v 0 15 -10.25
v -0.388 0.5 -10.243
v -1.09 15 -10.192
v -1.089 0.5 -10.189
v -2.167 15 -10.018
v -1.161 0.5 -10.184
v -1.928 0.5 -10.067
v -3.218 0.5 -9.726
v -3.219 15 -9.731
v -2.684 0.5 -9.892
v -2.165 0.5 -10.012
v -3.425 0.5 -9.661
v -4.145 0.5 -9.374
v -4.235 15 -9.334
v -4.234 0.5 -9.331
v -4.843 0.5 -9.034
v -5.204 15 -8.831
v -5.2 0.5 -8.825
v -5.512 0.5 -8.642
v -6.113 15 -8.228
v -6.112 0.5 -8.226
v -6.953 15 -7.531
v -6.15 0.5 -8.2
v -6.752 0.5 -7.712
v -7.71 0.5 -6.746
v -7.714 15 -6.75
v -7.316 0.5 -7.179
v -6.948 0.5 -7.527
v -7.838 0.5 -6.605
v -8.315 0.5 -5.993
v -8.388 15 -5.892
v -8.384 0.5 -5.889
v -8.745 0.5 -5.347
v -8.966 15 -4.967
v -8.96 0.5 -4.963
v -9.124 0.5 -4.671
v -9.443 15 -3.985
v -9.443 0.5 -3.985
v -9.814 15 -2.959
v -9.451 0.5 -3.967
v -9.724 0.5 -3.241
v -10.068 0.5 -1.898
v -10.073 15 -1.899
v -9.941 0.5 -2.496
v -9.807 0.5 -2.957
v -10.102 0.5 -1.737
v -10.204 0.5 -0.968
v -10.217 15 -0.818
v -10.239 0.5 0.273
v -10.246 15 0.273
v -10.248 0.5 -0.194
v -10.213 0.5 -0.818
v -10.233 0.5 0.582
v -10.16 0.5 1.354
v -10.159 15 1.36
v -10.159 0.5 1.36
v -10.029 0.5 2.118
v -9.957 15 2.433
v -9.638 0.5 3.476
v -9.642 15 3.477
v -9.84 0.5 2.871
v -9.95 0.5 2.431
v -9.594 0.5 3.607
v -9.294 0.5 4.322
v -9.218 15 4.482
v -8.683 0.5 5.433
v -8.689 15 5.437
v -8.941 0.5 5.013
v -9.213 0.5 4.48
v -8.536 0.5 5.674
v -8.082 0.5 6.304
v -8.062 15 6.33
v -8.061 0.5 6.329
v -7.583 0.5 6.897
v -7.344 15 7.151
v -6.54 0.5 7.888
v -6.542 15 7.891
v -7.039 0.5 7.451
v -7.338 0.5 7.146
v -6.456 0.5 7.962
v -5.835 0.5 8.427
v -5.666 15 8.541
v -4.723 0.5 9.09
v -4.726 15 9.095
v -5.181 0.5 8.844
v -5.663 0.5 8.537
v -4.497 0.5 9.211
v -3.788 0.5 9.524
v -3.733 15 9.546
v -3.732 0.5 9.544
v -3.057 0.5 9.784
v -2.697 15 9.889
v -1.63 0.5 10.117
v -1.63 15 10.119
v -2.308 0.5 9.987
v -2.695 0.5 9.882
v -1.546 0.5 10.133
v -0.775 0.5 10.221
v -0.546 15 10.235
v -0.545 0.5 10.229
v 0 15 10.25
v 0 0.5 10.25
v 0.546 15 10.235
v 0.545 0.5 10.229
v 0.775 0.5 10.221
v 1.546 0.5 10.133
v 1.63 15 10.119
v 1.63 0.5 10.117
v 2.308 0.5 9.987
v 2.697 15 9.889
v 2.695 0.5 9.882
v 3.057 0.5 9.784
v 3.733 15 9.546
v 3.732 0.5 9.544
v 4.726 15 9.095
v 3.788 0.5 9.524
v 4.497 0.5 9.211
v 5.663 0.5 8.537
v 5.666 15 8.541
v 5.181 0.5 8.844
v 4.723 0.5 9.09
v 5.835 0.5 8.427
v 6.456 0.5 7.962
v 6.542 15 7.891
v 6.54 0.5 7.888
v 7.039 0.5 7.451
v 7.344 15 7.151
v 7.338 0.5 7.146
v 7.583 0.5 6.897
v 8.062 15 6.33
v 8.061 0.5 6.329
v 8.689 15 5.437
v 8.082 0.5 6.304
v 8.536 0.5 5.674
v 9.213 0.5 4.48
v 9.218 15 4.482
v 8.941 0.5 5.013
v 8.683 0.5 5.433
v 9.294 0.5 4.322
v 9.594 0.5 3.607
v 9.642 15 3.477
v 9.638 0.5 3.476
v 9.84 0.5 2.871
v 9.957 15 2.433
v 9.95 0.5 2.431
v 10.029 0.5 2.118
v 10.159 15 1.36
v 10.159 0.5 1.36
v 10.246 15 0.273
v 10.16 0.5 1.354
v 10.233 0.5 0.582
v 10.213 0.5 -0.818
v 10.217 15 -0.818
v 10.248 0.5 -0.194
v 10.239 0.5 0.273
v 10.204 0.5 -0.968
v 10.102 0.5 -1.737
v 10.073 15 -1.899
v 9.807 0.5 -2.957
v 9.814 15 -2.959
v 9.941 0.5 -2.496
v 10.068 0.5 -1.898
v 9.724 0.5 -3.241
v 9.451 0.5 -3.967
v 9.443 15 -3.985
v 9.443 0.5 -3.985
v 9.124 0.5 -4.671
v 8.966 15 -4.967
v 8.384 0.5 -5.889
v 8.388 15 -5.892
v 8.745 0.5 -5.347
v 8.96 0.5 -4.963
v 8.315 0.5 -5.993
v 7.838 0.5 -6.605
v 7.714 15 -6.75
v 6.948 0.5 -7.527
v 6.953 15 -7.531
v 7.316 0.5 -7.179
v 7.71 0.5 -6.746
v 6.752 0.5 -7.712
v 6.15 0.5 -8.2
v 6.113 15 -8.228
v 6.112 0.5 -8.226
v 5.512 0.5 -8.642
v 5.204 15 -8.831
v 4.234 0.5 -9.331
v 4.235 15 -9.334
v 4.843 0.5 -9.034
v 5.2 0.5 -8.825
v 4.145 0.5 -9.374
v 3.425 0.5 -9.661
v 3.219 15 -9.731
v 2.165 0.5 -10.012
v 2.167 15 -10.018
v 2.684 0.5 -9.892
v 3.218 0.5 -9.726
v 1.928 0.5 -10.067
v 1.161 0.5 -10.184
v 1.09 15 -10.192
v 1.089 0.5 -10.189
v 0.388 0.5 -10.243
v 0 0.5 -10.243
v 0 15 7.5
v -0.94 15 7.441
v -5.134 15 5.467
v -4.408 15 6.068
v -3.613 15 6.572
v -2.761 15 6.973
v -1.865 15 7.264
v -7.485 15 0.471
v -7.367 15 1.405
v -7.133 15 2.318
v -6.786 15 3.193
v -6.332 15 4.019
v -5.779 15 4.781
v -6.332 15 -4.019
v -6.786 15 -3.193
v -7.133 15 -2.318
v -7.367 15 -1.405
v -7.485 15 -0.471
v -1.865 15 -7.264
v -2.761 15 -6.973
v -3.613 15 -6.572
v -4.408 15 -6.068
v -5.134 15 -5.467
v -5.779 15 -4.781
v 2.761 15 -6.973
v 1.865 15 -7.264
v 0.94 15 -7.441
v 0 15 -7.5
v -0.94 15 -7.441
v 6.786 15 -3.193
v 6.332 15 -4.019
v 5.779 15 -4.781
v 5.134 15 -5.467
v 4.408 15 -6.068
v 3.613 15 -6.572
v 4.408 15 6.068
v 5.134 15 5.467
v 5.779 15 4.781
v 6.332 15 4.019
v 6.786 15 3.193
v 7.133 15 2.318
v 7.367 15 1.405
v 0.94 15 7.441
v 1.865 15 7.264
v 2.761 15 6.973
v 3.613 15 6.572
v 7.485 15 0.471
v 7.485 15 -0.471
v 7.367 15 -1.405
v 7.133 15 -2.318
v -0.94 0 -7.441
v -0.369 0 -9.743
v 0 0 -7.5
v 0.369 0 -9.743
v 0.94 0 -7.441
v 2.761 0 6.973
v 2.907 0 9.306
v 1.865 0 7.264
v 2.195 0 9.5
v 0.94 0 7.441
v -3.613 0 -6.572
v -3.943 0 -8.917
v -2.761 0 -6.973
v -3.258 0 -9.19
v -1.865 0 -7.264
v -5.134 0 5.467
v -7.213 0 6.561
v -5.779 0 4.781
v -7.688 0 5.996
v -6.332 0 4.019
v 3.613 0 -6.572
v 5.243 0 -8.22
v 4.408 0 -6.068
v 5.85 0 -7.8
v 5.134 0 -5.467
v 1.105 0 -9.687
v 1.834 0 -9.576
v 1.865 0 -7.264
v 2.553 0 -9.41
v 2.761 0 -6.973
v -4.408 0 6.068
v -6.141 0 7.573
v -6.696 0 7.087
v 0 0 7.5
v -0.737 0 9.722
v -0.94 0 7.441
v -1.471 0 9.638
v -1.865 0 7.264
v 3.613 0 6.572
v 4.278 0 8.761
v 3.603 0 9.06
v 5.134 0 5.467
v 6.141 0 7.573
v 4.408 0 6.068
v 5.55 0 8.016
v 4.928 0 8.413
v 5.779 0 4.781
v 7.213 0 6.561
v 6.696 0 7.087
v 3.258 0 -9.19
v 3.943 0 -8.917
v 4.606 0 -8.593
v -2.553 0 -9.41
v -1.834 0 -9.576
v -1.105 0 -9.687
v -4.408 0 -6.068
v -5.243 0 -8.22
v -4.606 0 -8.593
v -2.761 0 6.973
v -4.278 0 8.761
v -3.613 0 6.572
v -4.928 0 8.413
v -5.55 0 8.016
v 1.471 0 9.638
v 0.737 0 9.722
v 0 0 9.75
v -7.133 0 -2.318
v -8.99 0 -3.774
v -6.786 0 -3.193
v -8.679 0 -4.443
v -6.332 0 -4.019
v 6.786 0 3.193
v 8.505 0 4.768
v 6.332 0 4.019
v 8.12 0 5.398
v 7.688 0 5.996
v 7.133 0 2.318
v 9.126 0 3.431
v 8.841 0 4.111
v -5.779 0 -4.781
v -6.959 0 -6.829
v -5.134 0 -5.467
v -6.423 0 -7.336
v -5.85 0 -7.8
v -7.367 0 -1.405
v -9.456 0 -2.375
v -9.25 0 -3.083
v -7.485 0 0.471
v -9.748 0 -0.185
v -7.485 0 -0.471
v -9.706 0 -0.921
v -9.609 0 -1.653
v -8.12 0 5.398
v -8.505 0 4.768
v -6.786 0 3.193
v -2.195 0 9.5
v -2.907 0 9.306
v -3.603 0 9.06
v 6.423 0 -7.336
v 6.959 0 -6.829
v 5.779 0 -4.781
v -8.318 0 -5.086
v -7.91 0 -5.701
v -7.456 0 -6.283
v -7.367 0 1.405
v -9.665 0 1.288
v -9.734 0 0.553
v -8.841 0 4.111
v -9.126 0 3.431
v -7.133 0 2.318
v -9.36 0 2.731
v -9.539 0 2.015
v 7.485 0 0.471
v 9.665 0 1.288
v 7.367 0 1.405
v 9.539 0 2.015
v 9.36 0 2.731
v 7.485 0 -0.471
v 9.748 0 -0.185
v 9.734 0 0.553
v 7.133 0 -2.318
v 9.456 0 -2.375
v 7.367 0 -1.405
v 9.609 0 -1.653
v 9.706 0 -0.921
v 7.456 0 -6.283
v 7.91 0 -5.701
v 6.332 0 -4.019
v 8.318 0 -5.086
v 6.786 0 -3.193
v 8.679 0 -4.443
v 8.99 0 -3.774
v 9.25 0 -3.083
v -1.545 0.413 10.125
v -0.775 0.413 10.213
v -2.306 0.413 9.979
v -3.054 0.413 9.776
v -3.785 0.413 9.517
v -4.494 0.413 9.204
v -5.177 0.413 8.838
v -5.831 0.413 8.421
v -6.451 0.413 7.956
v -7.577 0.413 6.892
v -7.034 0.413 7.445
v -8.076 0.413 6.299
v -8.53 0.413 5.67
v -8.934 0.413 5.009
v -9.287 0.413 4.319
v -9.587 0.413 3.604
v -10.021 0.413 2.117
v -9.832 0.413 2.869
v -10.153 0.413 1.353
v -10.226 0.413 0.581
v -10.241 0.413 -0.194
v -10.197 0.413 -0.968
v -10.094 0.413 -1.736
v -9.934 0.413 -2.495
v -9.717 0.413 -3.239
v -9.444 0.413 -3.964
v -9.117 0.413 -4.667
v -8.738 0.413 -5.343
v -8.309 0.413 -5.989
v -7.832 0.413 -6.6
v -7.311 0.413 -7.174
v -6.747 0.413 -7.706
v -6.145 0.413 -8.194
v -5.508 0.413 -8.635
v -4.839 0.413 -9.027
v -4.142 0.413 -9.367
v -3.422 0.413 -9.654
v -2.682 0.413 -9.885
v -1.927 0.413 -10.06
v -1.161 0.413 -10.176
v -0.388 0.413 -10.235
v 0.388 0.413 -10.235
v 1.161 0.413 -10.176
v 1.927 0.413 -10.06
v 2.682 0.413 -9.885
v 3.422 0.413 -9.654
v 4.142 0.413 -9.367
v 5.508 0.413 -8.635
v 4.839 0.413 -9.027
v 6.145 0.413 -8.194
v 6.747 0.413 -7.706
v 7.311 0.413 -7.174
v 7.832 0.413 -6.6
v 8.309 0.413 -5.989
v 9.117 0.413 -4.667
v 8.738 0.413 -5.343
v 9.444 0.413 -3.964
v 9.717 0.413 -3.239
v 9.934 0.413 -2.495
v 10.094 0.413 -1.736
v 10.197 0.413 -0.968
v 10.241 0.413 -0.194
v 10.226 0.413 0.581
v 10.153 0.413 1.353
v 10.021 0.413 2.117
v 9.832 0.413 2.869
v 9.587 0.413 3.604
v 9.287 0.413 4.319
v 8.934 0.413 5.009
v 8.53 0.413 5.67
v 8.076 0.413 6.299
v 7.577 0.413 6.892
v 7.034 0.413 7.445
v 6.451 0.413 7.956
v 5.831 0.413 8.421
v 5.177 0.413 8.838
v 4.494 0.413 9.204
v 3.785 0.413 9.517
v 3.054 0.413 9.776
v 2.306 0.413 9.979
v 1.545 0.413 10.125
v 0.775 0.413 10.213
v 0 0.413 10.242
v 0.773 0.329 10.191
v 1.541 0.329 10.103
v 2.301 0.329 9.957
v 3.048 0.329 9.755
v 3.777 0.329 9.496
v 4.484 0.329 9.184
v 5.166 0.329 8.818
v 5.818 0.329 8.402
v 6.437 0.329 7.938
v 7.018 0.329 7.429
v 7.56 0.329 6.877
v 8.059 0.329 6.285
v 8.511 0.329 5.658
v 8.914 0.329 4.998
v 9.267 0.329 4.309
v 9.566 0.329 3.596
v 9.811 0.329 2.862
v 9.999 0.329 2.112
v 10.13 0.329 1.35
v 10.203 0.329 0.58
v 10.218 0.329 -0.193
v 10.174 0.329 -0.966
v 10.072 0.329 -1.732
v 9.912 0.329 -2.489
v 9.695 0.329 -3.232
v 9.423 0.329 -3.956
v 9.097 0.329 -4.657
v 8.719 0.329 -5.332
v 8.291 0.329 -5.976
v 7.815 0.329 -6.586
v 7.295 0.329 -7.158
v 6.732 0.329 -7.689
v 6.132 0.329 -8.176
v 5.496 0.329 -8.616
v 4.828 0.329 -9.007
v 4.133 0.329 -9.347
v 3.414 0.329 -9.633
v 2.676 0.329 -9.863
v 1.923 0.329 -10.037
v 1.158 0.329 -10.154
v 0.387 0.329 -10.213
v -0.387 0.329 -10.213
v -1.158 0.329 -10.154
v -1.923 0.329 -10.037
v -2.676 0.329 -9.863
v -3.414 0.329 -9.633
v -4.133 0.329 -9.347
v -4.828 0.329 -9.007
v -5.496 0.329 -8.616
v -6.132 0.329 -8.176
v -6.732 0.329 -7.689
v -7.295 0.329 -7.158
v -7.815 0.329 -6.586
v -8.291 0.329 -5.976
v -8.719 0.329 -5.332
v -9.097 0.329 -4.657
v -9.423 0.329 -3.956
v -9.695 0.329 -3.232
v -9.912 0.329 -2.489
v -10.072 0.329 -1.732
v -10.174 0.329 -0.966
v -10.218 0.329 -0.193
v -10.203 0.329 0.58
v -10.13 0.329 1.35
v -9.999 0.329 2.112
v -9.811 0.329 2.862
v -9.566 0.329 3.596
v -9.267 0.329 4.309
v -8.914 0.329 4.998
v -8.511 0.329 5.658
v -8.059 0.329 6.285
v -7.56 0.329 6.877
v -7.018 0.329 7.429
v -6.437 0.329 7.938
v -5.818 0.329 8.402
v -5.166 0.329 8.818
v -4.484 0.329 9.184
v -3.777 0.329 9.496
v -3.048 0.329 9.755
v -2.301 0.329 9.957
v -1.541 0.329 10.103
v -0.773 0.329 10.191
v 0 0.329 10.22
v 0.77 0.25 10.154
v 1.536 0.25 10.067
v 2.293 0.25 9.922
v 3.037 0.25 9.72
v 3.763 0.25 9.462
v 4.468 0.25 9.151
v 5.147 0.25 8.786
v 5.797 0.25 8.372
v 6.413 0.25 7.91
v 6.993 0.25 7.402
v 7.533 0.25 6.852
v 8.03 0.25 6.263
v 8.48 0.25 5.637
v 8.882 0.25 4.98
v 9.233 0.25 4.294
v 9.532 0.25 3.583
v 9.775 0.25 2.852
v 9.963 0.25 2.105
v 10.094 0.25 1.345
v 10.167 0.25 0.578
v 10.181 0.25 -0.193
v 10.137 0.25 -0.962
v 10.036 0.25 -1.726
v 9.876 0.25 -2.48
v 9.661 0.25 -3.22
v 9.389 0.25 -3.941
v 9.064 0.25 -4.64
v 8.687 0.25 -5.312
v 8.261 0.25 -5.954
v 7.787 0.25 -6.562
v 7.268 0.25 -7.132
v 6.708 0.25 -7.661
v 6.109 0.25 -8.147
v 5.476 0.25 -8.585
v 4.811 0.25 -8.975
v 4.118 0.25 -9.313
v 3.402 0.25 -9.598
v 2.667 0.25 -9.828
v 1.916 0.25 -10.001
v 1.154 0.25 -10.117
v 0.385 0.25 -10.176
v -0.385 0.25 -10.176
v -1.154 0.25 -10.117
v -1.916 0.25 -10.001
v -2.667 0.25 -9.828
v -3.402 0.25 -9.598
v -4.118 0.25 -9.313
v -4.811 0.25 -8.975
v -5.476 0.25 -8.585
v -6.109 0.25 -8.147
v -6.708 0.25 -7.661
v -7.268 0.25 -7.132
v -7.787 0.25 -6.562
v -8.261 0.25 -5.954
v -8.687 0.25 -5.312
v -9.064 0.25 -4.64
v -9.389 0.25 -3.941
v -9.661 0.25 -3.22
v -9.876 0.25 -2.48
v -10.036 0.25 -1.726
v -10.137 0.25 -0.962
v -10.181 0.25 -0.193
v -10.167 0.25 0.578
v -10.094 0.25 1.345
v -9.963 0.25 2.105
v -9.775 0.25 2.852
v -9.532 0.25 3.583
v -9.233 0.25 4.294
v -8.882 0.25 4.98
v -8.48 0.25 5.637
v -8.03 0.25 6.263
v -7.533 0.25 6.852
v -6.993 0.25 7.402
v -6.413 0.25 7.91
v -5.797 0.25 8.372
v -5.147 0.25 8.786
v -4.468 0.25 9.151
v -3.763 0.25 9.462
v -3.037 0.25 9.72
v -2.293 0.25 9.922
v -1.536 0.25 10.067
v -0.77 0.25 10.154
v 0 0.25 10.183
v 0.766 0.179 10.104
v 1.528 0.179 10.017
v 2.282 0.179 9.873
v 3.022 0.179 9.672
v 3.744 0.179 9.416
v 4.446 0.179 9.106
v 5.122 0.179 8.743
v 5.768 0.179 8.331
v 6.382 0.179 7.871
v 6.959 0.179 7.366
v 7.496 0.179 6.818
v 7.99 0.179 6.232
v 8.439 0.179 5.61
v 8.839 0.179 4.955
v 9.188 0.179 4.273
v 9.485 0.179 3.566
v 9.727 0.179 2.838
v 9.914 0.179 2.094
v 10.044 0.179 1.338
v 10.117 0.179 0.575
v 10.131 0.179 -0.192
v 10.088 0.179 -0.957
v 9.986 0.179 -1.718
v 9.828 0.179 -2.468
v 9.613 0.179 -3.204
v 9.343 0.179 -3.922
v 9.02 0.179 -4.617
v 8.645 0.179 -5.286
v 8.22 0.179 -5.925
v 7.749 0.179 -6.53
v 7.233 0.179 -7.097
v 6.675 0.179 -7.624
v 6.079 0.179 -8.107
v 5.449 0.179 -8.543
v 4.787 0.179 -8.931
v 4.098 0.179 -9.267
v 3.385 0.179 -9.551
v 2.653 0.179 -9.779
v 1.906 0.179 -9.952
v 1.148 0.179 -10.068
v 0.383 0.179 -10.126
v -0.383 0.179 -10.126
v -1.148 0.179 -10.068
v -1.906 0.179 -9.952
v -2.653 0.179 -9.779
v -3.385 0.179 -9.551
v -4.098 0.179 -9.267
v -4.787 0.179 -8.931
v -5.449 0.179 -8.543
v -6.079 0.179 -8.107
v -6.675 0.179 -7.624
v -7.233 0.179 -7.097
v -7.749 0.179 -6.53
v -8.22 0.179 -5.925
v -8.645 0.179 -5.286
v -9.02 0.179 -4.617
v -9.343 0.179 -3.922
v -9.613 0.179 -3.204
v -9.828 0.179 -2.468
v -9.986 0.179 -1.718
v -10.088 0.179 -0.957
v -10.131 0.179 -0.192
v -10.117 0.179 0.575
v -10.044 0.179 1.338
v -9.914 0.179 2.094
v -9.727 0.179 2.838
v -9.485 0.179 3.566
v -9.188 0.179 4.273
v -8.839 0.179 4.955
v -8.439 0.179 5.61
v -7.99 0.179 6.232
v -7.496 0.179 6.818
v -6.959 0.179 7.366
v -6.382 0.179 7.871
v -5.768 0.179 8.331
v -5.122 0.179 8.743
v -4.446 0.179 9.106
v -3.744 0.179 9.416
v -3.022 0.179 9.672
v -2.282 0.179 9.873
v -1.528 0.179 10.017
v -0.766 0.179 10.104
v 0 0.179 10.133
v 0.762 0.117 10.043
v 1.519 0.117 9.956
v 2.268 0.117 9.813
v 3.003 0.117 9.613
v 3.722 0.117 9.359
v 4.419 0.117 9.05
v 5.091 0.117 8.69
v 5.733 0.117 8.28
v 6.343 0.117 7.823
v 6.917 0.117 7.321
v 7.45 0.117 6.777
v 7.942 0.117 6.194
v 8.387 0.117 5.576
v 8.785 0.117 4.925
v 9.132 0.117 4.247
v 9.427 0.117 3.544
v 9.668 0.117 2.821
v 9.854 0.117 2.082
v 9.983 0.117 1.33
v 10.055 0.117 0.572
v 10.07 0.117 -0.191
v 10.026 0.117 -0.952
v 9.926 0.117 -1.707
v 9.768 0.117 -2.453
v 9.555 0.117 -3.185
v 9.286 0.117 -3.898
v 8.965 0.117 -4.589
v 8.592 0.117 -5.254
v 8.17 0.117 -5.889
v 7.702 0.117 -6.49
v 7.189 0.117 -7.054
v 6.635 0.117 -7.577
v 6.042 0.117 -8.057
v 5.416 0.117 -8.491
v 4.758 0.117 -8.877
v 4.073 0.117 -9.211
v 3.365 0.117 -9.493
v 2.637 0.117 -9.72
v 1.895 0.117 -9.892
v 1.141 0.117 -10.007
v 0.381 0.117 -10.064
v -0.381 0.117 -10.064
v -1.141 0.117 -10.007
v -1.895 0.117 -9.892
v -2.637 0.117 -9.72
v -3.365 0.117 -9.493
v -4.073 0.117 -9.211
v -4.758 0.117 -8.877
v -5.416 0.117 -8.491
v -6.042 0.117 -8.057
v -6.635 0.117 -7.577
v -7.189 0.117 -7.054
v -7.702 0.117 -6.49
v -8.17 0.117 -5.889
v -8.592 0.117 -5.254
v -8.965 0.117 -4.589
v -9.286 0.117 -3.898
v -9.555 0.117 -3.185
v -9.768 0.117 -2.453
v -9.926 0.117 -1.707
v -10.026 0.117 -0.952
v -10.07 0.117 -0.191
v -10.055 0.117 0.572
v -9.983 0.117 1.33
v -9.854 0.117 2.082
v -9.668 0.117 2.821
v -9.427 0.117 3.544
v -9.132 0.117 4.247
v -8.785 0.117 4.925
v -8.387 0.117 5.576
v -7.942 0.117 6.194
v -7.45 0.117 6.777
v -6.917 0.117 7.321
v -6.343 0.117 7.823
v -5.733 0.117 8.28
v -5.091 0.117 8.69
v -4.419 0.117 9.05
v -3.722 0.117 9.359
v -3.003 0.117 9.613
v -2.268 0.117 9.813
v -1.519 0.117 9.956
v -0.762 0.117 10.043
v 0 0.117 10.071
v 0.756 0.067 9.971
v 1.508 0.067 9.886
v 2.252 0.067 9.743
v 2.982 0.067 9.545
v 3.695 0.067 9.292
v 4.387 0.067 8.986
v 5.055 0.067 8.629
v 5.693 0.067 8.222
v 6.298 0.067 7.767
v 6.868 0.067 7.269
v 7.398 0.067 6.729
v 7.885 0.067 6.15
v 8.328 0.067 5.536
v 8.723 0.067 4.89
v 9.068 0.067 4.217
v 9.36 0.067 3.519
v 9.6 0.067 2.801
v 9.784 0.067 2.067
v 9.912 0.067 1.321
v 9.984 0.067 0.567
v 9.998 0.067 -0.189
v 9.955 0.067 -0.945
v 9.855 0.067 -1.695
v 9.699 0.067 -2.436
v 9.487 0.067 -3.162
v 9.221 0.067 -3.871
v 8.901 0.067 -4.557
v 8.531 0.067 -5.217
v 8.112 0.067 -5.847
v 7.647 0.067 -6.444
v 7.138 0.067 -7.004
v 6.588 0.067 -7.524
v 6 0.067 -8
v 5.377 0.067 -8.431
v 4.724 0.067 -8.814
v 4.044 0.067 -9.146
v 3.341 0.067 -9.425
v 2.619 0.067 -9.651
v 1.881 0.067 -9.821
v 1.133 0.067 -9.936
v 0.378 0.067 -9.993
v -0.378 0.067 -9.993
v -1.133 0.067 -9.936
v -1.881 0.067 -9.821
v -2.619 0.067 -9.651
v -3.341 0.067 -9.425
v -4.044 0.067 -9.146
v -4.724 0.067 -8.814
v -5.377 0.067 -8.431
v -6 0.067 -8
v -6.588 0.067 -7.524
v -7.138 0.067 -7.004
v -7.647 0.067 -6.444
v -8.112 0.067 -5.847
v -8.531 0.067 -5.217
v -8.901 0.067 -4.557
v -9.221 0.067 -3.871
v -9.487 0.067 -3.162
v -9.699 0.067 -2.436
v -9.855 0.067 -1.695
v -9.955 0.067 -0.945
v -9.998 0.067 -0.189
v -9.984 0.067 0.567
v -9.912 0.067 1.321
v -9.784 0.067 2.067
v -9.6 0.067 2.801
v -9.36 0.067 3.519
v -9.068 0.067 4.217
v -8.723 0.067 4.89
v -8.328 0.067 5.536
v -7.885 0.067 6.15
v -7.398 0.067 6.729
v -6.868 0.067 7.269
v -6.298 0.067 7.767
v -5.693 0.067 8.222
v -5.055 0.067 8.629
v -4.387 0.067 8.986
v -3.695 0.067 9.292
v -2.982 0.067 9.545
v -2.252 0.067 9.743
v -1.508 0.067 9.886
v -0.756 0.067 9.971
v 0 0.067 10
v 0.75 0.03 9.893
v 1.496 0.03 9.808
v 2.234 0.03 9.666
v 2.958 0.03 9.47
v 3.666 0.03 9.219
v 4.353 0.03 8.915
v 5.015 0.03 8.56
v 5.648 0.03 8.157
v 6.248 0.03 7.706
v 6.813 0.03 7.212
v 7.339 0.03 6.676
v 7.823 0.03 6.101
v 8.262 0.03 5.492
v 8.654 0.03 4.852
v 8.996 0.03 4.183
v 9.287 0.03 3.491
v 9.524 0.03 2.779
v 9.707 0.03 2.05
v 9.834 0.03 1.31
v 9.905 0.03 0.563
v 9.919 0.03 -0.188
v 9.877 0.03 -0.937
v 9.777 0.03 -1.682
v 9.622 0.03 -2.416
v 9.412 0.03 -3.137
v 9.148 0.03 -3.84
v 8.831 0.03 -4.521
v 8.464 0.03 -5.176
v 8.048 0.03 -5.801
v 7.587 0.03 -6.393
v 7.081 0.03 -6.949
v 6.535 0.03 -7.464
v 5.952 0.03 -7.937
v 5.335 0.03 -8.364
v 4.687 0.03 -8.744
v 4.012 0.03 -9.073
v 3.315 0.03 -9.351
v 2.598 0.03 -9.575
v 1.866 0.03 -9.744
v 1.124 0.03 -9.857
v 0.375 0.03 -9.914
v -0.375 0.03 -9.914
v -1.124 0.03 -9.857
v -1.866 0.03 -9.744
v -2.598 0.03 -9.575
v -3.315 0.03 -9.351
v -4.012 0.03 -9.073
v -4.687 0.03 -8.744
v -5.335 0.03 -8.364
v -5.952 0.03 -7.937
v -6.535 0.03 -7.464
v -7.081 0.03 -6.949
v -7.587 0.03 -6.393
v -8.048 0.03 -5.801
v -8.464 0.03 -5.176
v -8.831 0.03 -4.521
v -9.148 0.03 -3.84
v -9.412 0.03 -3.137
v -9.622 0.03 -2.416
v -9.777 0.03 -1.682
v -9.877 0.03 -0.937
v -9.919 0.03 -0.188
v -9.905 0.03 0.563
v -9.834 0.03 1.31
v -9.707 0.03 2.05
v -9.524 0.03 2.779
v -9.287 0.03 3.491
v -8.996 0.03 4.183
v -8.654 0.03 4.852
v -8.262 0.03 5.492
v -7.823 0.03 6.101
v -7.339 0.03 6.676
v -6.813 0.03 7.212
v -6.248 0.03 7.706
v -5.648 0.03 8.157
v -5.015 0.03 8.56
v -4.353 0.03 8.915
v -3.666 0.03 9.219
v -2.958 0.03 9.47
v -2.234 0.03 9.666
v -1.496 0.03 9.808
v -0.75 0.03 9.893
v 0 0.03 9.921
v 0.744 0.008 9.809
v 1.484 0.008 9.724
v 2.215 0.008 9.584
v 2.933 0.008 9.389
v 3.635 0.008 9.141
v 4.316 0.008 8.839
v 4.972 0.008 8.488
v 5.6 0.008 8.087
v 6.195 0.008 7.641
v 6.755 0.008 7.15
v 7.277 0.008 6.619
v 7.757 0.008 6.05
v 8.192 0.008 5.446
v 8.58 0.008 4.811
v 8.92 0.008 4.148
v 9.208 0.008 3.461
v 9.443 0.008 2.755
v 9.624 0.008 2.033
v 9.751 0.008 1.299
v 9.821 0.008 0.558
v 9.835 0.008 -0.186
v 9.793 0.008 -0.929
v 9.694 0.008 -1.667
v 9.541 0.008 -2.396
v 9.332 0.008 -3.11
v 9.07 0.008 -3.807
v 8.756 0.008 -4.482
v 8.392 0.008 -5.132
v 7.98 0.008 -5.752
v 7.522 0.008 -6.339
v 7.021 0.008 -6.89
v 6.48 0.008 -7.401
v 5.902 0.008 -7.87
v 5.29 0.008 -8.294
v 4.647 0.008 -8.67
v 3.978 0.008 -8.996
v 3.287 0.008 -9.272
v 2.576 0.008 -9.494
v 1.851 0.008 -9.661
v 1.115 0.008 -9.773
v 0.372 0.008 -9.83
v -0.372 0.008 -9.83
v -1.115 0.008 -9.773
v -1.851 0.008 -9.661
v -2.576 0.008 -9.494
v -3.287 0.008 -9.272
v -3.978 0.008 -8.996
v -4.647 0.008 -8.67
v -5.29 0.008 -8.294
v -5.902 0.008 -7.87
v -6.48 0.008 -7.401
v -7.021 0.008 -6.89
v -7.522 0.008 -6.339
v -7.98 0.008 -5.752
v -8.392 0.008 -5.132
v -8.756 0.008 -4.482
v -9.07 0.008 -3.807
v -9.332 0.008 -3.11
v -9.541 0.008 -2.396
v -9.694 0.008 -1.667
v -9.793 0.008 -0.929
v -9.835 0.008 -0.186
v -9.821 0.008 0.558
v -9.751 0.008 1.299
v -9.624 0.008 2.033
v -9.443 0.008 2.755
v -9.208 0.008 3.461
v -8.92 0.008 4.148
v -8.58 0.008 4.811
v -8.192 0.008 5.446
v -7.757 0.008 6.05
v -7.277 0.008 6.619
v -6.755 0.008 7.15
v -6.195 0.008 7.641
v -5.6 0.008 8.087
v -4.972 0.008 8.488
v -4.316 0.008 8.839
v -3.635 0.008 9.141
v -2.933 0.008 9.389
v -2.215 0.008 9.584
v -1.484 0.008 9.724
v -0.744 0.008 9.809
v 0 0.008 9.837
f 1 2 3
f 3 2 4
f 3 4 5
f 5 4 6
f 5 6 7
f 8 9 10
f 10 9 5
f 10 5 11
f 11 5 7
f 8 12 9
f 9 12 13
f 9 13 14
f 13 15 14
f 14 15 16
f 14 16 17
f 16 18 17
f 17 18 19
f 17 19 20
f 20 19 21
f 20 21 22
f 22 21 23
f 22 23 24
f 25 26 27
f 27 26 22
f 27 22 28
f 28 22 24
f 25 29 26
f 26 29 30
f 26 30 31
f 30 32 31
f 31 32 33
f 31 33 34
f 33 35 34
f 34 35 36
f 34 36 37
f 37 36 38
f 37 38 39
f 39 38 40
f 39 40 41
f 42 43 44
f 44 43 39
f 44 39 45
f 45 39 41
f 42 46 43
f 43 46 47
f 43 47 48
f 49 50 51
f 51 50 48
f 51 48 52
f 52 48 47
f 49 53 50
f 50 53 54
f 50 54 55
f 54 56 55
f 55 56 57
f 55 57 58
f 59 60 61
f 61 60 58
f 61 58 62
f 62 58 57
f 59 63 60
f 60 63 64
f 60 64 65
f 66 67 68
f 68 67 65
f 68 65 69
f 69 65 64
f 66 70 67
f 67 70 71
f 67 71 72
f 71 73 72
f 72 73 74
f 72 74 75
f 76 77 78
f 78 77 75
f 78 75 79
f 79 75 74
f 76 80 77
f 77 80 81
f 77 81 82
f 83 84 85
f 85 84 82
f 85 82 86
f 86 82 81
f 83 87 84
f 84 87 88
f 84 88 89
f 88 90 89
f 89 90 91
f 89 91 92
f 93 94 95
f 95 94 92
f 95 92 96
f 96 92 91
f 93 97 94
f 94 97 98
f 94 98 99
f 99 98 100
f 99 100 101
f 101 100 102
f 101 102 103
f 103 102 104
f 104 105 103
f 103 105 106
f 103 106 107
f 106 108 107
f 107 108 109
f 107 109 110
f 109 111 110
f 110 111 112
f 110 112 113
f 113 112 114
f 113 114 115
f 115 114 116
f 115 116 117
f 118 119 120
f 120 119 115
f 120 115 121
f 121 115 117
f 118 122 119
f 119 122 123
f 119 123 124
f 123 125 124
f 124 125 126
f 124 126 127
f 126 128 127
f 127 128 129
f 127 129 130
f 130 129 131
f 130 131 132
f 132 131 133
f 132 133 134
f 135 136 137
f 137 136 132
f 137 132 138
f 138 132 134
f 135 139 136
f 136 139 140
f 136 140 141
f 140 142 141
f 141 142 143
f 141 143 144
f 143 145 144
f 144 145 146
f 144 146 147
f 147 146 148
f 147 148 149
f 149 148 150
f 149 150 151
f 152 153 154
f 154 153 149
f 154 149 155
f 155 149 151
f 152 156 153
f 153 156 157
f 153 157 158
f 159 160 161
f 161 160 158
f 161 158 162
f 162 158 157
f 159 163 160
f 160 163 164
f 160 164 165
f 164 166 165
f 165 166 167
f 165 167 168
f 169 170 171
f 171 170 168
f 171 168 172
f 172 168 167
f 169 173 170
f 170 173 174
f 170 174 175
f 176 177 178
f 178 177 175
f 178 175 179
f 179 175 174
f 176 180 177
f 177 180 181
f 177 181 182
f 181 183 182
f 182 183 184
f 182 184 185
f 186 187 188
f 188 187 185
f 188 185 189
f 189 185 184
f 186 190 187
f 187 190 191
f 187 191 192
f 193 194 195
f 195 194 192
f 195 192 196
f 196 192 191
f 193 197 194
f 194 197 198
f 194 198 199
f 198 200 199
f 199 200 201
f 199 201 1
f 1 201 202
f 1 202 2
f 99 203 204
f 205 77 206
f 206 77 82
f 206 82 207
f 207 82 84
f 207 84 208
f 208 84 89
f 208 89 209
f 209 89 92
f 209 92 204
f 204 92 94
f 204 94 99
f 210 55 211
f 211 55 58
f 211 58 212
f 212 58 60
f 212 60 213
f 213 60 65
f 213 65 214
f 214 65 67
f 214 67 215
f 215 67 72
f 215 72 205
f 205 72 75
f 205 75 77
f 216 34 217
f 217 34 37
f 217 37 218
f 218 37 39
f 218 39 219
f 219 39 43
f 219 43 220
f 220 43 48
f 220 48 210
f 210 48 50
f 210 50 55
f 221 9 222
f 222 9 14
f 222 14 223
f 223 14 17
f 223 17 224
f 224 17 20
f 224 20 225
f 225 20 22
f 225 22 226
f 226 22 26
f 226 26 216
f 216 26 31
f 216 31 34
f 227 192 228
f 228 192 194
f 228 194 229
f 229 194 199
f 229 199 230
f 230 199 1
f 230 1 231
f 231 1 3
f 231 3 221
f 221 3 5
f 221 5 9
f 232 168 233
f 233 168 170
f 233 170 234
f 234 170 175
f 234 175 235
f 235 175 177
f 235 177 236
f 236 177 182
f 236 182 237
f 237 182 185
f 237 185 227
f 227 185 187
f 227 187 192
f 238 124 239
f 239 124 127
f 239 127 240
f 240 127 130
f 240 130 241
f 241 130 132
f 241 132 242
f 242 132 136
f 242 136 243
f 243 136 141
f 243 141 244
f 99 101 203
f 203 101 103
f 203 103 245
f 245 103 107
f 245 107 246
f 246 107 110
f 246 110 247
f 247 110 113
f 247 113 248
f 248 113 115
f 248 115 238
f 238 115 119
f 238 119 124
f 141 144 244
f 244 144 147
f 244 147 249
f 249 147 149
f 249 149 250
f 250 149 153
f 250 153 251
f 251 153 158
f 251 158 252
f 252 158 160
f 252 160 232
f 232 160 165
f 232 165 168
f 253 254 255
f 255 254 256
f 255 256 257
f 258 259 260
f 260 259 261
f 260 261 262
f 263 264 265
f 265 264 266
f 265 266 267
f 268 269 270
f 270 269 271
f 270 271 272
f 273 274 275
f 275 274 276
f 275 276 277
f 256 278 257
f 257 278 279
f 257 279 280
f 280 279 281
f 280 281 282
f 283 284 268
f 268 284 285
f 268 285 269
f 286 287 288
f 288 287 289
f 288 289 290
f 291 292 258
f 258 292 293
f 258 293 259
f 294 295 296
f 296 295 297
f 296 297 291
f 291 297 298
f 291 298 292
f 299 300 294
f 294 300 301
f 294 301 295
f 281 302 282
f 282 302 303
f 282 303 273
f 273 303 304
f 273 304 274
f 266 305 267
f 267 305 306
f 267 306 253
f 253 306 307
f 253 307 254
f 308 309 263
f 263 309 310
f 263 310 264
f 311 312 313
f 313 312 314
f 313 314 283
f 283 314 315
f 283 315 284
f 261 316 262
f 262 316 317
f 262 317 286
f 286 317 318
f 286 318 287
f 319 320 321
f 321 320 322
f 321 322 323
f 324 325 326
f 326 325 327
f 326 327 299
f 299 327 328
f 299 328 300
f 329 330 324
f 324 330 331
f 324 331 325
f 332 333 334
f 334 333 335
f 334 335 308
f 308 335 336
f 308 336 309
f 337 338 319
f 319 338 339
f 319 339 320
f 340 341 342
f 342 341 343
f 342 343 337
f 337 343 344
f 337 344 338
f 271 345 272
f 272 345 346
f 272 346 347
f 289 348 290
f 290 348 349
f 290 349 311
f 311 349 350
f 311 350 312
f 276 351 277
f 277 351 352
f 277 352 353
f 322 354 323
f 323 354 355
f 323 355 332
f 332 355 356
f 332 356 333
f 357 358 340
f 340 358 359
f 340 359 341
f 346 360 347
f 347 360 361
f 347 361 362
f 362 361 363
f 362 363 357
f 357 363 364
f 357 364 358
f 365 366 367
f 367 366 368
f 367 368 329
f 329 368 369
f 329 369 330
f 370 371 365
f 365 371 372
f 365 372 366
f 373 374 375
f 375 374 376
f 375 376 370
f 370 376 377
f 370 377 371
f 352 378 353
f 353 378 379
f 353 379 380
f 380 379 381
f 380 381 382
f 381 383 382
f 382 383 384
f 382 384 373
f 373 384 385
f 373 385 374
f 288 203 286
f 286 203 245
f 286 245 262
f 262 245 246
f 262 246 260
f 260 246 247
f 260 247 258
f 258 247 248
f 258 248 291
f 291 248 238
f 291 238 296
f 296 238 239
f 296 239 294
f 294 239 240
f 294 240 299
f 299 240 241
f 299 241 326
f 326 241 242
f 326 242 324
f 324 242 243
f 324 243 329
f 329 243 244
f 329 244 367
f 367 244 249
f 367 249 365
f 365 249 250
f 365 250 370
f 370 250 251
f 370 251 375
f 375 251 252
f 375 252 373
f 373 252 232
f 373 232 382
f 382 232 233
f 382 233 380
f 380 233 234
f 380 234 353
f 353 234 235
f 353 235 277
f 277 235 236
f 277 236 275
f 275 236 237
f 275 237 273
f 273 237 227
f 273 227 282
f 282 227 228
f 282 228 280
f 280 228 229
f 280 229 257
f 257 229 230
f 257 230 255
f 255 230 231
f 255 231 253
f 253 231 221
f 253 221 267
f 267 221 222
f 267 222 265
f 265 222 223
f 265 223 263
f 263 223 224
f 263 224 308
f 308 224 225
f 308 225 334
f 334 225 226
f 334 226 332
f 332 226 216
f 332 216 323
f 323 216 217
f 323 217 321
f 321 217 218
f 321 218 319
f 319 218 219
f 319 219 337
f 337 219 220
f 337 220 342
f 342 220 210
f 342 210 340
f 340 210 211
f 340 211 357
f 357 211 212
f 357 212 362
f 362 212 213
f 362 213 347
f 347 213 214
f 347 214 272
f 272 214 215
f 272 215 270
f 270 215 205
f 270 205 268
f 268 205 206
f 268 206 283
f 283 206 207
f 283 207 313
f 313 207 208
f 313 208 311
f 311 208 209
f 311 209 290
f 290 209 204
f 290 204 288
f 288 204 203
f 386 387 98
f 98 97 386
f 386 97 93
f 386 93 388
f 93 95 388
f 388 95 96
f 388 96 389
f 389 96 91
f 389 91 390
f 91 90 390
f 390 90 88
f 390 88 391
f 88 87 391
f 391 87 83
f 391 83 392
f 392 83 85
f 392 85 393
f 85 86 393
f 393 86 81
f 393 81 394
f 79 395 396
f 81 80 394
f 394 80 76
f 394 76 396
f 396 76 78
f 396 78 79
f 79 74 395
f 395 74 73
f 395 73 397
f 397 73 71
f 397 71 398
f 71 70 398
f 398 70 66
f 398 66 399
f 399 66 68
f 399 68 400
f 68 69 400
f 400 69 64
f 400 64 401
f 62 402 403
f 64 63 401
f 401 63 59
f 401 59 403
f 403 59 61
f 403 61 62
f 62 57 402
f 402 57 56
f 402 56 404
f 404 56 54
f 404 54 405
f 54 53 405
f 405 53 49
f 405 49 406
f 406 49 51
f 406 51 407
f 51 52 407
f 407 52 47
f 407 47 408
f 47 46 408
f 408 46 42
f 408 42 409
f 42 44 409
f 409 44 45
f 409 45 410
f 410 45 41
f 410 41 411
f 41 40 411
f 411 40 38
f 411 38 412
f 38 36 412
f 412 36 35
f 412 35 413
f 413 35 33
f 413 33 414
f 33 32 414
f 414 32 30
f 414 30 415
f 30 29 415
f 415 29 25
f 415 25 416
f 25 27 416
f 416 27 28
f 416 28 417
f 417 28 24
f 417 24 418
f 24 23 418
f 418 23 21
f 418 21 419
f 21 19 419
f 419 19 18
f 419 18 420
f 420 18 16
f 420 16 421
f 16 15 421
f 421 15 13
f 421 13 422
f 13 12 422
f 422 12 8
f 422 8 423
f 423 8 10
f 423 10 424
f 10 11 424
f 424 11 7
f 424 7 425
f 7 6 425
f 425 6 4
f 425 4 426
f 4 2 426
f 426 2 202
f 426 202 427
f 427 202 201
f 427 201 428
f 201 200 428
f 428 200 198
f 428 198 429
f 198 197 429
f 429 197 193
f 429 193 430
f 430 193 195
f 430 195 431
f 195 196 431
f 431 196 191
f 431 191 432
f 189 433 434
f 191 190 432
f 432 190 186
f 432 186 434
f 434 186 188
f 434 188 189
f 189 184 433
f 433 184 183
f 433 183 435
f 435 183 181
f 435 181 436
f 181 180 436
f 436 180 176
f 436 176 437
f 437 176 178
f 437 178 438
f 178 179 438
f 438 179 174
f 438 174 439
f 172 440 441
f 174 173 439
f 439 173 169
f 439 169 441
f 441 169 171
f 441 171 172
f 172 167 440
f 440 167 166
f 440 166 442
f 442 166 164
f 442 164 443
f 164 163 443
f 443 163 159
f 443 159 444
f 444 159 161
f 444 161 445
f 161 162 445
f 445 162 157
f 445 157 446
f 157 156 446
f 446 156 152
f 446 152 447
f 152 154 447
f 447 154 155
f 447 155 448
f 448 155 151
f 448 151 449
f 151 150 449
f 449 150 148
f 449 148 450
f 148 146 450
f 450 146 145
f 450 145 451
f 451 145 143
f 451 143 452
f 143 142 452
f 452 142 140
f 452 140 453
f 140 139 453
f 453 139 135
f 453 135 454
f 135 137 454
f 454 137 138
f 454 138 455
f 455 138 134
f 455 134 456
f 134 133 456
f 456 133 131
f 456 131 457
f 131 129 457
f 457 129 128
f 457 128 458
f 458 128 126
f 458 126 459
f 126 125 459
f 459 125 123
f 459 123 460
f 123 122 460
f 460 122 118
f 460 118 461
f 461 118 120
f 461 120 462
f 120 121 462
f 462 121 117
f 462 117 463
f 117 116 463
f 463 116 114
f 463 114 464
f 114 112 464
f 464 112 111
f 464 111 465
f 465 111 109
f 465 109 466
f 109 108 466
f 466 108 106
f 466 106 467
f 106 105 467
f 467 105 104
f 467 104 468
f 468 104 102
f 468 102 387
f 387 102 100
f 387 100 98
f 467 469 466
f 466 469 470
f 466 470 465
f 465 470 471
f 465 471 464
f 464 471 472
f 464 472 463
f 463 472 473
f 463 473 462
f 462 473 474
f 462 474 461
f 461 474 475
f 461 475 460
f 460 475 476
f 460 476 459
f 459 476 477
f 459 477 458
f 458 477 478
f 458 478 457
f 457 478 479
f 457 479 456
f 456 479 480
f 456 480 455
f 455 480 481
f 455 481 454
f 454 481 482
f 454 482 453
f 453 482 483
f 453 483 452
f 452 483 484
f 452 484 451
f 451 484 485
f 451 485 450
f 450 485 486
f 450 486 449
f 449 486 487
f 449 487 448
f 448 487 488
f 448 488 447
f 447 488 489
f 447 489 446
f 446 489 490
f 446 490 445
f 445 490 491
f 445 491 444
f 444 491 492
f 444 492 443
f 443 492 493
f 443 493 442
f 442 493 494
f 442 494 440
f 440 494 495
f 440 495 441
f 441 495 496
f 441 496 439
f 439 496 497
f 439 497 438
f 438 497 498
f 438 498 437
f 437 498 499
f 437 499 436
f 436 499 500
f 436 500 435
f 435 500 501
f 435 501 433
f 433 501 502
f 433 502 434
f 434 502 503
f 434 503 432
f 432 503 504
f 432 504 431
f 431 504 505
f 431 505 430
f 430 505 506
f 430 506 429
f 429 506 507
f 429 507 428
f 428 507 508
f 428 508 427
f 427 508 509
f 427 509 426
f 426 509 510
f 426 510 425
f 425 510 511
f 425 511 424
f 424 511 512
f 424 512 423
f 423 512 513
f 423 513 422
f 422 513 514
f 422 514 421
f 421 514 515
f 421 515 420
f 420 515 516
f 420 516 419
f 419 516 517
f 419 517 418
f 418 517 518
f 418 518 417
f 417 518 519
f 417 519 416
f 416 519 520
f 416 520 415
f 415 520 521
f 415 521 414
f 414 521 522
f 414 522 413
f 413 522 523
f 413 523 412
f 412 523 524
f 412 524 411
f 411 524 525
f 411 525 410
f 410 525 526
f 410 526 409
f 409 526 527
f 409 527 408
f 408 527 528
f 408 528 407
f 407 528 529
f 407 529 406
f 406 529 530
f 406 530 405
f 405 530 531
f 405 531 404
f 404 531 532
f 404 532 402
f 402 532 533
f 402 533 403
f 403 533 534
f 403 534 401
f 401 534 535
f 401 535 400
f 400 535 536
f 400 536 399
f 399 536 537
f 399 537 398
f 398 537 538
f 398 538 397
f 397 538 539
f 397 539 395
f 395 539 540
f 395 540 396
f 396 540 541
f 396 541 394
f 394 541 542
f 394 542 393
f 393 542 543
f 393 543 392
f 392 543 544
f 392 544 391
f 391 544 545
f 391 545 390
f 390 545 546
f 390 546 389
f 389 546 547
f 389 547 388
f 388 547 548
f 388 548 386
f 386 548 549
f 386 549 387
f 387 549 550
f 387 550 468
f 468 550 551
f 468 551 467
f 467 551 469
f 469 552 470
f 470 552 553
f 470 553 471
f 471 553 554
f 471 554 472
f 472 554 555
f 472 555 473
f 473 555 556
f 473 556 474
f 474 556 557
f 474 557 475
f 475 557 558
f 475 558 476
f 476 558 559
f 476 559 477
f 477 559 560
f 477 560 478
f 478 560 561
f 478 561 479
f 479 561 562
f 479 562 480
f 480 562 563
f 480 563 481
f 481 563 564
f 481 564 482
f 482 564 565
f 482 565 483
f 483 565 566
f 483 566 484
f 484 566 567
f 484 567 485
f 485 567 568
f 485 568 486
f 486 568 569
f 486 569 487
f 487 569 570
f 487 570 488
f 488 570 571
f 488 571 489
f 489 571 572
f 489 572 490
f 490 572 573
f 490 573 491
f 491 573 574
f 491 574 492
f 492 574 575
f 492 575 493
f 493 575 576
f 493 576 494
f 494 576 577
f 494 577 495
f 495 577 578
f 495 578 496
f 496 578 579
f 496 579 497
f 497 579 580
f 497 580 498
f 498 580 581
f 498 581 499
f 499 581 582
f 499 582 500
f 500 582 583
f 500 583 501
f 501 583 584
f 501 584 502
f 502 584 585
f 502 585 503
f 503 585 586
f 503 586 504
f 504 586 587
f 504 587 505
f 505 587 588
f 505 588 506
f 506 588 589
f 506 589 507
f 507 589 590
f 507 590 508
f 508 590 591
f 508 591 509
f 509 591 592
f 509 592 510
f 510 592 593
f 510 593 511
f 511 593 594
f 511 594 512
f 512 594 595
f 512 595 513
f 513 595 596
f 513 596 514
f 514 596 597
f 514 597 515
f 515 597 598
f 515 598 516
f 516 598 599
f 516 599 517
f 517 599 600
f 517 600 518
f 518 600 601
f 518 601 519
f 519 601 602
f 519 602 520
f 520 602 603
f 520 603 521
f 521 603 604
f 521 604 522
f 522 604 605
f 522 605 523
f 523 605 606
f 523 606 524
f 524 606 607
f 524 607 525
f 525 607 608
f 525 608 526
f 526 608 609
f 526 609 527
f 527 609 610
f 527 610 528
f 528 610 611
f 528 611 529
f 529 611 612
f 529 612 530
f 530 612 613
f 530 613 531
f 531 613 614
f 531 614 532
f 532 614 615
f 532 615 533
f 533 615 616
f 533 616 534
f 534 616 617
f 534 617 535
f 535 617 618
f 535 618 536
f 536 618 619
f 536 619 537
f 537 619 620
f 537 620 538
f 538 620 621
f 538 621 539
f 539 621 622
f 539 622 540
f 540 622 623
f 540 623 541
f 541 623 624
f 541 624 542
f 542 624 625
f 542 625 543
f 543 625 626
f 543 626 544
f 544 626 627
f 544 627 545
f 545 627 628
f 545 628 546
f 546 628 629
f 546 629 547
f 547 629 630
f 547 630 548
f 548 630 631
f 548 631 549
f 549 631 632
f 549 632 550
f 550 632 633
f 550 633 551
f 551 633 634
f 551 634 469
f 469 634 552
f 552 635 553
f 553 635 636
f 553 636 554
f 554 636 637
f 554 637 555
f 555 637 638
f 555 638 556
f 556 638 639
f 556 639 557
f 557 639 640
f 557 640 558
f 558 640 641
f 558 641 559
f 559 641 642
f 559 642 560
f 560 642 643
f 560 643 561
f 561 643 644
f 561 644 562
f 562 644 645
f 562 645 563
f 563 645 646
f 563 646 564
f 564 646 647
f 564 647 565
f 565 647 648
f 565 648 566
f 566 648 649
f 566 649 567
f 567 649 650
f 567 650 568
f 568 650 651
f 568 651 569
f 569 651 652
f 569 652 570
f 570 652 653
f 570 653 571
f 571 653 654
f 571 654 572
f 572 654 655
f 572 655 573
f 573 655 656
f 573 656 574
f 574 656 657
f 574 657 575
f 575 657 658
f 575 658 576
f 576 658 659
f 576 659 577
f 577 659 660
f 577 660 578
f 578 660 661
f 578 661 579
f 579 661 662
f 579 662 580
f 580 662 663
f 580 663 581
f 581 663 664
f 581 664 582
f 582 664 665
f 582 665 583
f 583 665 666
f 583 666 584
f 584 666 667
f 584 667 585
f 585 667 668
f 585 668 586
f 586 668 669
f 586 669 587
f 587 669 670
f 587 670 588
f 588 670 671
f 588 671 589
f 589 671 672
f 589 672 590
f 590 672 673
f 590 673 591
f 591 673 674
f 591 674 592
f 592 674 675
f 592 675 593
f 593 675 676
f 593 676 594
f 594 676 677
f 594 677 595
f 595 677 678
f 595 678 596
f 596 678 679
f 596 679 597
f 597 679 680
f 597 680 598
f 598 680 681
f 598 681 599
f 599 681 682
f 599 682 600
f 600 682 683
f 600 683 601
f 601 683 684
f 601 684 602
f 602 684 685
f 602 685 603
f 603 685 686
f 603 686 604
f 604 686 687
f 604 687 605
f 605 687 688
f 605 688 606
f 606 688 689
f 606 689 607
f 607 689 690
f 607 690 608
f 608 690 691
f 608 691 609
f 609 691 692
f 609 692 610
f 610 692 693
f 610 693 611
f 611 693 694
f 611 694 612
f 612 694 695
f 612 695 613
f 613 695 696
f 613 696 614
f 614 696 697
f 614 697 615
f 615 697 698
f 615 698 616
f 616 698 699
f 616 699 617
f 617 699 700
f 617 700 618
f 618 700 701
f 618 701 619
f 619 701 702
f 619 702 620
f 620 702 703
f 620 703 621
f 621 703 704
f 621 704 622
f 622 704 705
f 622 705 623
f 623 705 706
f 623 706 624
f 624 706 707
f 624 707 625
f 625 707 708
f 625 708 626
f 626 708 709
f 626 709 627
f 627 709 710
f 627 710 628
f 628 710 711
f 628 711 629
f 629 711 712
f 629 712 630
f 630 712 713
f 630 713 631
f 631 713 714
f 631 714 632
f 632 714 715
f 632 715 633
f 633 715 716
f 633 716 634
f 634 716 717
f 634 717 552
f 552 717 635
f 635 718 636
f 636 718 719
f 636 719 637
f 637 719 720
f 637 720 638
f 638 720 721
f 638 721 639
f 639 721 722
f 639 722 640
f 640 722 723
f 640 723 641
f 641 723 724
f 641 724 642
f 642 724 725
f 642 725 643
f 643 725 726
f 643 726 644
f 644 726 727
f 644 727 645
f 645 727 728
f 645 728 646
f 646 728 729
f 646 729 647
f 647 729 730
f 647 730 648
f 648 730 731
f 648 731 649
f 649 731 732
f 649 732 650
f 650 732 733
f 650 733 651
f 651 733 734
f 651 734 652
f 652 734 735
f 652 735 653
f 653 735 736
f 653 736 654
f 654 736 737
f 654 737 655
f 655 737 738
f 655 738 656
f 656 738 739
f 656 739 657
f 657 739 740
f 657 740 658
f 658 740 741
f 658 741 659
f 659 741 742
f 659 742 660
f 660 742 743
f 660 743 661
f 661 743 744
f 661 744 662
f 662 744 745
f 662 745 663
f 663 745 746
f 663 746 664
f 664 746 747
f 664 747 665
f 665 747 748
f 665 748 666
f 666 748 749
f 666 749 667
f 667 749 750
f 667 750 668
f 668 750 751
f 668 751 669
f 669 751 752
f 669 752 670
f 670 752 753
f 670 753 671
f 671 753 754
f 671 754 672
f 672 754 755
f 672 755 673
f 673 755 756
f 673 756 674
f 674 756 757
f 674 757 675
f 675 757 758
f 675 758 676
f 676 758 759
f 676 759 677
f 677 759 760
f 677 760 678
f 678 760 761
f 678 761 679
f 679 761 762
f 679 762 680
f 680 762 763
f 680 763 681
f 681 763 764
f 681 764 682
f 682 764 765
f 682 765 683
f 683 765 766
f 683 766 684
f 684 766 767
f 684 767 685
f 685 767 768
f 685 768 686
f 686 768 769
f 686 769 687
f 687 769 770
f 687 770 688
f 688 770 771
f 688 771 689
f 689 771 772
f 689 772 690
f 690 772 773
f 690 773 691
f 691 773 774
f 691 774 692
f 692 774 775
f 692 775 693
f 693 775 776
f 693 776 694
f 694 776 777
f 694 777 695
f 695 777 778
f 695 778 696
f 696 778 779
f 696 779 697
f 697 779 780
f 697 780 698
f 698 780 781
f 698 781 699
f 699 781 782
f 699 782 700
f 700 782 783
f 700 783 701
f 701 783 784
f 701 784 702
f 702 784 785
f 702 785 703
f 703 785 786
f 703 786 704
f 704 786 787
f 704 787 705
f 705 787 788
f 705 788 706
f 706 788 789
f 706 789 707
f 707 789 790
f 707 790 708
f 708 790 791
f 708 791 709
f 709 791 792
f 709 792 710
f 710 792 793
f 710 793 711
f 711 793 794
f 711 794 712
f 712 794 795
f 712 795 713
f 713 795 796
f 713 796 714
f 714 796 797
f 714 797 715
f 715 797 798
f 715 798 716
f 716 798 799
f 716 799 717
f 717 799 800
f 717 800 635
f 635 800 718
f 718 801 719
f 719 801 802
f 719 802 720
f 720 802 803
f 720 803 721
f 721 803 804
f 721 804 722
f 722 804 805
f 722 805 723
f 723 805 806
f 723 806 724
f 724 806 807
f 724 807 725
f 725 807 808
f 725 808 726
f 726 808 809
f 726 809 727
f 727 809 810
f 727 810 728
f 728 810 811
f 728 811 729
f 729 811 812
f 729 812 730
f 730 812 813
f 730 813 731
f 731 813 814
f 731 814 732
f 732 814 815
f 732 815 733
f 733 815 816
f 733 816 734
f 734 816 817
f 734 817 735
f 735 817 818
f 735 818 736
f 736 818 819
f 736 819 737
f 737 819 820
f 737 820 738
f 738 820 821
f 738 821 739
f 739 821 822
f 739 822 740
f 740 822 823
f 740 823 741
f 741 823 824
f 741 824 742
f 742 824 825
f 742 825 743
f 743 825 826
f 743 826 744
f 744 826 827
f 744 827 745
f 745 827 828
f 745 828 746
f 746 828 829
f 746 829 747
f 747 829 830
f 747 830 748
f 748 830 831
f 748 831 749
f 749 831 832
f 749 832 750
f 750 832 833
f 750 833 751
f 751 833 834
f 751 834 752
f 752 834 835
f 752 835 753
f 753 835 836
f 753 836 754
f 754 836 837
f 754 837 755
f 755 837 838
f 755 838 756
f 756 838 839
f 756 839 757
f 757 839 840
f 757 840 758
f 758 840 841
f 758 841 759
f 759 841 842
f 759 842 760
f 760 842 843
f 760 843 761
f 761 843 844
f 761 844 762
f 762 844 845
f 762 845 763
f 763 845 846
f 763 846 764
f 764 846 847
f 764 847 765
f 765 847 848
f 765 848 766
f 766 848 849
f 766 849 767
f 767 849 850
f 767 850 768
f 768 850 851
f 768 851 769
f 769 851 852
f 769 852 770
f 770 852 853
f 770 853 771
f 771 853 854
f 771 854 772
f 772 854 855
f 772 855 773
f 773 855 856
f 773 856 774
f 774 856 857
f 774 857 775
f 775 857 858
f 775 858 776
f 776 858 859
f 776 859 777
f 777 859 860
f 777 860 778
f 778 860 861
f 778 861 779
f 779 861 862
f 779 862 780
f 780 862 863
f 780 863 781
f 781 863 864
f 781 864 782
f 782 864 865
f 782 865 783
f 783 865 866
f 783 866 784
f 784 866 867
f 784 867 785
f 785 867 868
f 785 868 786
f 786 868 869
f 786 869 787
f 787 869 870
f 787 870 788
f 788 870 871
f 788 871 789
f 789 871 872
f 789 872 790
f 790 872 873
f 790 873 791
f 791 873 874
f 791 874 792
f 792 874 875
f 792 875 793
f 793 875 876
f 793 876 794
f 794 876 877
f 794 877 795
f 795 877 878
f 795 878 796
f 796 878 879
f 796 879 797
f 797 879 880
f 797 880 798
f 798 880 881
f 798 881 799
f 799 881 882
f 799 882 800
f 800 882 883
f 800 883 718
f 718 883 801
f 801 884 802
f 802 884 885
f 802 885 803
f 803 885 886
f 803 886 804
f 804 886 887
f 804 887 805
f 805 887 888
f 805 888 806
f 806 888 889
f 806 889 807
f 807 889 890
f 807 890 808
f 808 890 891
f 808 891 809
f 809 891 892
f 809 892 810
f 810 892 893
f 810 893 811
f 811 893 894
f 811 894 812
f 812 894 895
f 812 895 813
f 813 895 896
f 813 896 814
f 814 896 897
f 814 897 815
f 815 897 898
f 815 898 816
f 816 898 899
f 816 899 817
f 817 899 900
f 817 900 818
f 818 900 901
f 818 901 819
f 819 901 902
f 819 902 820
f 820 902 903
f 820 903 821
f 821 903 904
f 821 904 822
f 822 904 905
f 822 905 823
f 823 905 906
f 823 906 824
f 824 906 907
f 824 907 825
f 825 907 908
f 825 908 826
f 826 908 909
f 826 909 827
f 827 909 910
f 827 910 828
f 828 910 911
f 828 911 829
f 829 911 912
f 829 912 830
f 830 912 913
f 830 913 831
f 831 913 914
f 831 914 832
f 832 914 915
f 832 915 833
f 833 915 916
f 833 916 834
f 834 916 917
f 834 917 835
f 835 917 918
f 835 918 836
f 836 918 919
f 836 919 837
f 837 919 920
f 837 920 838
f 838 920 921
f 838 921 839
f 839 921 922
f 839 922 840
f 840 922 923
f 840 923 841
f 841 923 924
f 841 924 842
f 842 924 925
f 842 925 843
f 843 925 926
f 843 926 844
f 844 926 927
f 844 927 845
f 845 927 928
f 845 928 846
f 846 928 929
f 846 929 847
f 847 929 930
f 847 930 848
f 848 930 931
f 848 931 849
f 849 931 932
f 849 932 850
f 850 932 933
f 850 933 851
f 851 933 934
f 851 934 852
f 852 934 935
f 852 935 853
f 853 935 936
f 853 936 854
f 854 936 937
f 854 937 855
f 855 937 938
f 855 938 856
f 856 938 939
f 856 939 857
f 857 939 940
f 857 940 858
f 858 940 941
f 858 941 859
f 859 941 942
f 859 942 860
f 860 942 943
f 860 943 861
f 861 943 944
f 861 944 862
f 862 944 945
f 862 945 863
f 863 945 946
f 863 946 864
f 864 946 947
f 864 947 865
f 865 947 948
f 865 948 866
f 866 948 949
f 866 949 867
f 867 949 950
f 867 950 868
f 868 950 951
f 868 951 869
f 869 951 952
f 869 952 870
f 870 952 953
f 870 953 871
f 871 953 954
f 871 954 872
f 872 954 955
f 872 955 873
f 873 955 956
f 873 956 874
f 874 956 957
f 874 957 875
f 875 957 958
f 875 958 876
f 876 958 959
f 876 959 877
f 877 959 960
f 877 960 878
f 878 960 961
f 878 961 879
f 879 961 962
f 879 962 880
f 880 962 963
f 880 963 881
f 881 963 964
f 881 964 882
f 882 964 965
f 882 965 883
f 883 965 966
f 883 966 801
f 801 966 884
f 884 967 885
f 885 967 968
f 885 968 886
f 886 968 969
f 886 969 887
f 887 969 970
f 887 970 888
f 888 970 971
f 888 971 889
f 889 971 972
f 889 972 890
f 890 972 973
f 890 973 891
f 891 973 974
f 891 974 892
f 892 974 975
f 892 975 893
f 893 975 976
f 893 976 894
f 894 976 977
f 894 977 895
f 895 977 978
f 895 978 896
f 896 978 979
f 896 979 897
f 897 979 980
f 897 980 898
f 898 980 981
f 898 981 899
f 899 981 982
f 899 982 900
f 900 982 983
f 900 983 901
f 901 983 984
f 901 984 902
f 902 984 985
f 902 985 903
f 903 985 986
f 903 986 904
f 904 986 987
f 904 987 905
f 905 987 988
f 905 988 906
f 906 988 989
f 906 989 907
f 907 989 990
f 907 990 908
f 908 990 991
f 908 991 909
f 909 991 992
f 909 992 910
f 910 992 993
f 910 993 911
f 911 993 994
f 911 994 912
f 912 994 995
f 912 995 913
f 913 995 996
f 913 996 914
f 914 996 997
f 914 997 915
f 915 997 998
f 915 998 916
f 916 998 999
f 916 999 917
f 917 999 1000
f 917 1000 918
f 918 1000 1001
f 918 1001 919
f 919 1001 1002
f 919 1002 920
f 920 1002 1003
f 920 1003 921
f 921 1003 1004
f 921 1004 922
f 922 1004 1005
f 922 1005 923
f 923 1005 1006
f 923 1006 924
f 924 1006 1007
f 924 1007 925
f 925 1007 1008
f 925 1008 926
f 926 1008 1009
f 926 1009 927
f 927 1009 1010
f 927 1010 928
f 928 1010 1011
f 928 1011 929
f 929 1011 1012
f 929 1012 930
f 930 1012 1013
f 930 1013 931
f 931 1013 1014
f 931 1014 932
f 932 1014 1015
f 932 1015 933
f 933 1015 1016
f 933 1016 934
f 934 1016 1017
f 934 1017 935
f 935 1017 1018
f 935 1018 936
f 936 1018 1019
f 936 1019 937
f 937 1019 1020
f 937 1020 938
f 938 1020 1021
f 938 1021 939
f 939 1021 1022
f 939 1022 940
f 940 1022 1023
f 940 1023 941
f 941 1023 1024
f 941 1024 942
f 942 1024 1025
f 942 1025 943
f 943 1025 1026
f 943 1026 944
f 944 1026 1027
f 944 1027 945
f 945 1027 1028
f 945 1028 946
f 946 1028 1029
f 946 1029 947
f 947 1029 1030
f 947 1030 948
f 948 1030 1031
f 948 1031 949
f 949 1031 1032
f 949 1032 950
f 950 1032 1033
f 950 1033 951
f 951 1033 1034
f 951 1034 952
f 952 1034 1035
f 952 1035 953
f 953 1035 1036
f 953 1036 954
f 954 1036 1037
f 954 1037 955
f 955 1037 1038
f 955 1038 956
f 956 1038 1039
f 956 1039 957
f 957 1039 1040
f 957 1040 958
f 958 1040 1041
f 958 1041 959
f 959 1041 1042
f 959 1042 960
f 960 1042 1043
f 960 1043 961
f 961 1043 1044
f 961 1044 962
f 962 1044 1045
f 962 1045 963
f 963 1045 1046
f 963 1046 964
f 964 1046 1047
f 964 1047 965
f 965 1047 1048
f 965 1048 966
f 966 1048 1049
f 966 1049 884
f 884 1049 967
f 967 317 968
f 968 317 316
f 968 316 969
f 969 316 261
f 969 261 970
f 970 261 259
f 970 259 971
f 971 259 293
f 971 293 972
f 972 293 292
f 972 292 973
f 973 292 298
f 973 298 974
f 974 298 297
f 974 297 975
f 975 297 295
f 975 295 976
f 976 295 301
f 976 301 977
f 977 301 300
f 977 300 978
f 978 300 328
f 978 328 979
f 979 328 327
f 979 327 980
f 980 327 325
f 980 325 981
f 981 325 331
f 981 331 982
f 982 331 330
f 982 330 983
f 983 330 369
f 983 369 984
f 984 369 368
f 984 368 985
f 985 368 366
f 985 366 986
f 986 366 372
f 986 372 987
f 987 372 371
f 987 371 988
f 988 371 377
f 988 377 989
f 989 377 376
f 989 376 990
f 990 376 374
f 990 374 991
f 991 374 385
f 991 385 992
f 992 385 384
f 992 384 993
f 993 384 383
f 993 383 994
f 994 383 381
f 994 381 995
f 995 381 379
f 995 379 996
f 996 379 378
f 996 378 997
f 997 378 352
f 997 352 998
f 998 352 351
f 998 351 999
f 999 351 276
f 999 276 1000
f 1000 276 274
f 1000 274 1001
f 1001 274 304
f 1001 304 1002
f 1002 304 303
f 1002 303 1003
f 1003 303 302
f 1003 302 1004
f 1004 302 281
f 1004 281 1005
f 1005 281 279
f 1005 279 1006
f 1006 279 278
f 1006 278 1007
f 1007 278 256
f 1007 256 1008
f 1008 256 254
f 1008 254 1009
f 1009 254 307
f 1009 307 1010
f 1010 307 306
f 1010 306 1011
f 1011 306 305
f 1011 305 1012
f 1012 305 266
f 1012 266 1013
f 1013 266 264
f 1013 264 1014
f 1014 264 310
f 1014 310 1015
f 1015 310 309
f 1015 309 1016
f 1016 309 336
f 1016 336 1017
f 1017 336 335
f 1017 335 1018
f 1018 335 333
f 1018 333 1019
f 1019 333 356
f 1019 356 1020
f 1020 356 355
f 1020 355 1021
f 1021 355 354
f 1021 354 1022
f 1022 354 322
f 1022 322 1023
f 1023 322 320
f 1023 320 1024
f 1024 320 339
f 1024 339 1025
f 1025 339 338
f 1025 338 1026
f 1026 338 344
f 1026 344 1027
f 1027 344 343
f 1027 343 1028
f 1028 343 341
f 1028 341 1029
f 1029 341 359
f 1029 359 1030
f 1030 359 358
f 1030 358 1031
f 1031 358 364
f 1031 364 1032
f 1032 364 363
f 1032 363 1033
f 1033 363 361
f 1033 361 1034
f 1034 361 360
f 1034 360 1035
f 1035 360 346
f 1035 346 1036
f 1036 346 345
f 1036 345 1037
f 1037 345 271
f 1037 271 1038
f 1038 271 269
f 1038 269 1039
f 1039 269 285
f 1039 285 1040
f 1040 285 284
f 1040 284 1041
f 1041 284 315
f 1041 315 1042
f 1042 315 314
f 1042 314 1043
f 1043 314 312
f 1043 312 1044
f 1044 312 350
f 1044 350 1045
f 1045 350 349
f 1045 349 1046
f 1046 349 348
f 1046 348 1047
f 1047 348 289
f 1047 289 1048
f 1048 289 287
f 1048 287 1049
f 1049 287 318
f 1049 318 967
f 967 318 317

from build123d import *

# Parameters (mm, degrees)
SKETCH1_R           = 10.25
BOSS_EXTRUDE1_DEPTH = 15
SKETCH2_R           = 7.5
CUT_EXTRUDE1_DEPTH  = 15
FILLET1_R           = 0.5


with BuildPart() as part:
    # Sketch1 → Boss-Extrude1 (new body)
    with BuildSketch(Plane(origin=(0, 0, 0), x_dir=(1, 0, 0), z_dir=(0, 1, 0))):
        with Locations(Location((0, 0, 0), (0, 0, 270))):
            Circle(SKETCH1_R)
    extrude(amount=BOSS_EXTRUDE1_DEPTH)

    # Sketch2 → Cut-Extrude1 (cut)
    with BuildSketch(Plane(origin=(0, 15, 0), x_dir=(1, 0, 0), z_dir=(0, 1, 0))):
        with Locations(Location((0, 0, 0), (0, 0, 270))):
            Circle(SKETCH2_R)
    extrude(amount=-CUT_EXTRUDE1_DEPTH, mode=Mode.SUBTRACT)

    # Fillet1
    fillet1_edges = [part.edges().sort_by_distance(p)[0] for p in [
        (0, 0, -10.25),
    ]]
    fillet(fillet1_edges, radius=FILLET1_R)


solid = part.part
